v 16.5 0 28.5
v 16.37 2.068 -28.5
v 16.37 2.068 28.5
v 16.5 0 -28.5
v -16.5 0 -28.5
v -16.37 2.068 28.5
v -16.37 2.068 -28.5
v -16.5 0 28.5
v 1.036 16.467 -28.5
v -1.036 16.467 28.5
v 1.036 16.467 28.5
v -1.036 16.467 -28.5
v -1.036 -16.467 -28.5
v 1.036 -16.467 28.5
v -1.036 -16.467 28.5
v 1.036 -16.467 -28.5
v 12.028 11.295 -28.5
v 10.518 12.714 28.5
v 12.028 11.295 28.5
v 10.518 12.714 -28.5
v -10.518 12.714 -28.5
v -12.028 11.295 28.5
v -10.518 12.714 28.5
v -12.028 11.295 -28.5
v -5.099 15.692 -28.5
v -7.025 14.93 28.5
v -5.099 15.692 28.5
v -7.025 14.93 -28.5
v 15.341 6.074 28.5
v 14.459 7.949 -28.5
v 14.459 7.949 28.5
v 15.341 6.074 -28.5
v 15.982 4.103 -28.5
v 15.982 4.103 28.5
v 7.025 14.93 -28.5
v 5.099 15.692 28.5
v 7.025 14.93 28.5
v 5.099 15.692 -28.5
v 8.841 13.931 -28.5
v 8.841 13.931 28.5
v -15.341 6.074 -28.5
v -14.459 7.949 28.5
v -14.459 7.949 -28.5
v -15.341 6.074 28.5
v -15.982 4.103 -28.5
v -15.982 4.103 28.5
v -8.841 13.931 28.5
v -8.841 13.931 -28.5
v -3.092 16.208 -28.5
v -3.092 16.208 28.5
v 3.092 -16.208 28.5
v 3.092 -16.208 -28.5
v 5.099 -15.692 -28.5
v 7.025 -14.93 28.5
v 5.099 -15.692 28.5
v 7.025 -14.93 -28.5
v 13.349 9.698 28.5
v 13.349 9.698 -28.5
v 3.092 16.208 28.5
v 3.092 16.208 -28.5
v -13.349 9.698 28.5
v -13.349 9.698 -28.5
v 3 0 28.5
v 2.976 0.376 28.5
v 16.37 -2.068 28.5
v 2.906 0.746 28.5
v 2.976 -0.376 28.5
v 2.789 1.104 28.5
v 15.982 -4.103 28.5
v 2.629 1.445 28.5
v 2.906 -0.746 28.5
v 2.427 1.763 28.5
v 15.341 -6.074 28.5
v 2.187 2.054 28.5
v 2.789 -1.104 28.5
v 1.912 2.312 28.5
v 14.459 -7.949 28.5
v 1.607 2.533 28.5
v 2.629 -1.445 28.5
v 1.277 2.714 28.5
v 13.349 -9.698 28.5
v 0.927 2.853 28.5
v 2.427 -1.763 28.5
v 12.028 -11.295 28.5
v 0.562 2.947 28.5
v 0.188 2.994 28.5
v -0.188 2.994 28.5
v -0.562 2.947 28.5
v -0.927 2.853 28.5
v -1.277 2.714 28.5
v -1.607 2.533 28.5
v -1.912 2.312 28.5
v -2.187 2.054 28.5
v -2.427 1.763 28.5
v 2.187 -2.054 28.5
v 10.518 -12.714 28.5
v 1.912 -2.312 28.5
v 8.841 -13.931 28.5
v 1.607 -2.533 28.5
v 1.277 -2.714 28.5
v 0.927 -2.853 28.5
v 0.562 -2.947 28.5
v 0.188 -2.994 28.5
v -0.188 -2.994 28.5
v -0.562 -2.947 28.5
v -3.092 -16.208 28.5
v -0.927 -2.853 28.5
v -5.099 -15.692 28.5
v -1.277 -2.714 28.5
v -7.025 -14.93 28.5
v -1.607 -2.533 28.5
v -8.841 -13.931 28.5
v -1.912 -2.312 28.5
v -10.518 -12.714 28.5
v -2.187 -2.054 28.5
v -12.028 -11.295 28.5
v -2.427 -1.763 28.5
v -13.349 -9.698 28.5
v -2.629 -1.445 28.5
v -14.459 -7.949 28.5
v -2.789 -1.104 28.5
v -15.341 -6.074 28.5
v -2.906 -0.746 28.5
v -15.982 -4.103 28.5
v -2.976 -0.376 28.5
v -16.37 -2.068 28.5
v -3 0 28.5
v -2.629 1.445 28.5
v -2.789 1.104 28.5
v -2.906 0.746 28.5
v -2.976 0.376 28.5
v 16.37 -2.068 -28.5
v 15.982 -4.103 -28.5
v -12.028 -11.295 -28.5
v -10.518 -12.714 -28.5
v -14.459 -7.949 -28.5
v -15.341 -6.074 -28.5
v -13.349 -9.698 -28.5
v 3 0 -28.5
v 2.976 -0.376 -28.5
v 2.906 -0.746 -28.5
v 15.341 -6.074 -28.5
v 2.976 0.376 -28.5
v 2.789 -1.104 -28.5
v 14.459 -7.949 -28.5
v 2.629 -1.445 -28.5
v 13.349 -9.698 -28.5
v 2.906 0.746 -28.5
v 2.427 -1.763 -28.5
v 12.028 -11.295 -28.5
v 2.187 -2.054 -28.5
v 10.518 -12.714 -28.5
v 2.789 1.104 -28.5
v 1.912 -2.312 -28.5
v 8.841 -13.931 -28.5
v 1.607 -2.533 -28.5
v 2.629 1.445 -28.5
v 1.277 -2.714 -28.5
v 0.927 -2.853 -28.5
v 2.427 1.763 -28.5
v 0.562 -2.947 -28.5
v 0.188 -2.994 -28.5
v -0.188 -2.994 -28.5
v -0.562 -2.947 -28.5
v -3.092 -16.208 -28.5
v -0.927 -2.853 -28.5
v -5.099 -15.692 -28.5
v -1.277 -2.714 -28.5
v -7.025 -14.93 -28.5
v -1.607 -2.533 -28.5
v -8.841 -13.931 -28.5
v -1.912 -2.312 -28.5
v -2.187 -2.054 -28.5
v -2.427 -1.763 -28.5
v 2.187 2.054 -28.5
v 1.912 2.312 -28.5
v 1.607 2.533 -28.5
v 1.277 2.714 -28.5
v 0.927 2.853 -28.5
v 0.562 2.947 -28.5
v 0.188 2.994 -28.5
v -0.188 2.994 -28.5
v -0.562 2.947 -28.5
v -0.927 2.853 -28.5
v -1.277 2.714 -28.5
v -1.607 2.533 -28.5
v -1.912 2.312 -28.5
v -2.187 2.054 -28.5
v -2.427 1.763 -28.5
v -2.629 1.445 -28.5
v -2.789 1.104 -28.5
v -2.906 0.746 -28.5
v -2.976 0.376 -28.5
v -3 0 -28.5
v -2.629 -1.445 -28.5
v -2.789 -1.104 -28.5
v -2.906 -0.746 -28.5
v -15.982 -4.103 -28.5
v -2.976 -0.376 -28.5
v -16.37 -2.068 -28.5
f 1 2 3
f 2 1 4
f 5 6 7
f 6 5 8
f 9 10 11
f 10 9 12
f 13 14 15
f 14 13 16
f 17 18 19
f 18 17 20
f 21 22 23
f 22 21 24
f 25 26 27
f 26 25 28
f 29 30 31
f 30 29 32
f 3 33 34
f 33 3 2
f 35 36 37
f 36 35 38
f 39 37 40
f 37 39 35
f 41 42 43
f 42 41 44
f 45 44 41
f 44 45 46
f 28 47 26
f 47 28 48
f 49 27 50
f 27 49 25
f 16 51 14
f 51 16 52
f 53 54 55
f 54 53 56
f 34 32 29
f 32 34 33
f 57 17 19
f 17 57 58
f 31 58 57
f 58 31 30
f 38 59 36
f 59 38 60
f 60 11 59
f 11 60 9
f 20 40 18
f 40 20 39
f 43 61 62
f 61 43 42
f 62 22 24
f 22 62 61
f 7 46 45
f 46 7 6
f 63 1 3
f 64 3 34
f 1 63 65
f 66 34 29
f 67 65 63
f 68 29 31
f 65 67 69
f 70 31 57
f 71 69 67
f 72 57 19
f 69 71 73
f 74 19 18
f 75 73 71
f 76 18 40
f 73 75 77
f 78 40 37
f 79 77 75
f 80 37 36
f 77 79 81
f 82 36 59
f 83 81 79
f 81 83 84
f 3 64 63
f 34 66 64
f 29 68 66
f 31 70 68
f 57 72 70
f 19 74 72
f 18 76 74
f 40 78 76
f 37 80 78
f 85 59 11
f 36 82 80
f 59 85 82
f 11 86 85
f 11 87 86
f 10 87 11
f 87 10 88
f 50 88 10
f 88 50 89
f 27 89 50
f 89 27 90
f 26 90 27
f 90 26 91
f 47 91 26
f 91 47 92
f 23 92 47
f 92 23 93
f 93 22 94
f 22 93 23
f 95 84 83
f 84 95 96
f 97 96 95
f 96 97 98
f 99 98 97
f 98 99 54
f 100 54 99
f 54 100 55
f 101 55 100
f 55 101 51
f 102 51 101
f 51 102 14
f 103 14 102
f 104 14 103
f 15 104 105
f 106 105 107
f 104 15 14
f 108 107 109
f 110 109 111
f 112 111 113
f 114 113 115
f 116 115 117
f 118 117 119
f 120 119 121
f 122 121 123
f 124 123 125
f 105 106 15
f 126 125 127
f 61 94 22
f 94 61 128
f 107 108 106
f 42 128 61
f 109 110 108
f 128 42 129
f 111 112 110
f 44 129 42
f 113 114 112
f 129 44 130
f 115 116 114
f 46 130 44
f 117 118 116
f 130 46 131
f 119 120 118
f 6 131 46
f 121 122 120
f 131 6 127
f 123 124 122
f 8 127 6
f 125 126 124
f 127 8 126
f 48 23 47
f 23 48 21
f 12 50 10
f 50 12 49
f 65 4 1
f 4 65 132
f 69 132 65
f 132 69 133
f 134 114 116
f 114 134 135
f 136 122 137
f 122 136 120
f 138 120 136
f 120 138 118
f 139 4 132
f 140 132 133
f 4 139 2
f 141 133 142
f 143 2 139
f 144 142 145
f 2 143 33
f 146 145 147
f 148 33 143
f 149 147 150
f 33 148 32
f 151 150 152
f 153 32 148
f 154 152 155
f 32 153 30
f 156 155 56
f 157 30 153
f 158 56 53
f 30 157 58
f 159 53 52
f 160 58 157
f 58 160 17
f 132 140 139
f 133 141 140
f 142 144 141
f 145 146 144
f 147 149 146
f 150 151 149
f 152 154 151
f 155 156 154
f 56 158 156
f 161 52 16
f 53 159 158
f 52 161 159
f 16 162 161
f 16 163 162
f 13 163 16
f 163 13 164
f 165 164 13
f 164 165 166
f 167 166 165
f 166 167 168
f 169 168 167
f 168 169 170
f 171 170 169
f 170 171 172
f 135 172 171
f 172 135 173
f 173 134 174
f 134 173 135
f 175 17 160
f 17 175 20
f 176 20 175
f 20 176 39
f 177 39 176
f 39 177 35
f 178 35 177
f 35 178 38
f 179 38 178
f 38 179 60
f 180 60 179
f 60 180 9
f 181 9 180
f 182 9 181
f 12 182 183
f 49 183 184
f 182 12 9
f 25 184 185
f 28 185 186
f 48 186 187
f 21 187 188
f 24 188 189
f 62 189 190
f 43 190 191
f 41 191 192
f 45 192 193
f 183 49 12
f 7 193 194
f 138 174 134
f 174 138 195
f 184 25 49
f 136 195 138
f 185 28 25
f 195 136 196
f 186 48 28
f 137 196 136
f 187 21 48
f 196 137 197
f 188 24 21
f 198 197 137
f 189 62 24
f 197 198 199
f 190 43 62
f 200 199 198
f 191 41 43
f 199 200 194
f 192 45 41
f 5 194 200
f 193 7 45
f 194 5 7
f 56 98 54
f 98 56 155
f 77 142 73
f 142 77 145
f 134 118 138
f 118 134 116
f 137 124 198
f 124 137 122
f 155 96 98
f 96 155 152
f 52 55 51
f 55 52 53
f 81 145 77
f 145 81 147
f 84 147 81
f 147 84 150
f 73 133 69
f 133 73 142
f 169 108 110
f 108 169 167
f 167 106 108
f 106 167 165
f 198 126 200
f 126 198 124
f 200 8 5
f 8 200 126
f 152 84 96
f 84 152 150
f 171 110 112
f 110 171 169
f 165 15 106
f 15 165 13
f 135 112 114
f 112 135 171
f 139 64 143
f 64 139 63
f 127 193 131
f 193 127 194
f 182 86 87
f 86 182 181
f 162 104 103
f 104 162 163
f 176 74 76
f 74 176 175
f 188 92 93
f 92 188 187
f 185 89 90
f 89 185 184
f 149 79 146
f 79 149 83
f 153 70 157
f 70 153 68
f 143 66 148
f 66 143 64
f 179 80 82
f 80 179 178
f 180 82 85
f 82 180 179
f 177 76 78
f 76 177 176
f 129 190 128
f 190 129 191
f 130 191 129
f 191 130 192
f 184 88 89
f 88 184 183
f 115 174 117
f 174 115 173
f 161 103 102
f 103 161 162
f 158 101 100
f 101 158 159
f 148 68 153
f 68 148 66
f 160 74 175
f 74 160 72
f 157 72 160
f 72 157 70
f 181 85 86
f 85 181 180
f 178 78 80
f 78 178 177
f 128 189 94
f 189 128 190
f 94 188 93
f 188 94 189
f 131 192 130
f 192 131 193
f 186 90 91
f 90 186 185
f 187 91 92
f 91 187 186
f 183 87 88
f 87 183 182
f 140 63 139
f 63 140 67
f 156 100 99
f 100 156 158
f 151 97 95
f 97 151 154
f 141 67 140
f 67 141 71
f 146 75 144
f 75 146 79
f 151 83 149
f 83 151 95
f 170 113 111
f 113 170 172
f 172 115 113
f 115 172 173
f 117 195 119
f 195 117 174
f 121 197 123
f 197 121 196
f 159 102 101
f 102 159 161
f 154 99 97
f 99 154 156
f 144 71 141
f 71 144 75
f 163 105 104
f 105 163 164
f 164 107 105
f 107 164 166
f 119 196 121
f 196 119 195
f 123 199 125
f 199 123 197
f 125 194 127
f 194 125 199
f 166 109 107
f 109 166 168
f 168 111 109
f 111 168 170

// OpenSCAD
$fn = 50;


difference() {
	union() {
		translate(v = [0, 0, -28.5000000000]) {
			cylinder(h = 57, r = 16.5000000000);
		}
	}
	union() {
		translate(v = [0, 0, -100.0000000000]) {
			cylinder(h = 200, r = 3);
		}
	}
}
